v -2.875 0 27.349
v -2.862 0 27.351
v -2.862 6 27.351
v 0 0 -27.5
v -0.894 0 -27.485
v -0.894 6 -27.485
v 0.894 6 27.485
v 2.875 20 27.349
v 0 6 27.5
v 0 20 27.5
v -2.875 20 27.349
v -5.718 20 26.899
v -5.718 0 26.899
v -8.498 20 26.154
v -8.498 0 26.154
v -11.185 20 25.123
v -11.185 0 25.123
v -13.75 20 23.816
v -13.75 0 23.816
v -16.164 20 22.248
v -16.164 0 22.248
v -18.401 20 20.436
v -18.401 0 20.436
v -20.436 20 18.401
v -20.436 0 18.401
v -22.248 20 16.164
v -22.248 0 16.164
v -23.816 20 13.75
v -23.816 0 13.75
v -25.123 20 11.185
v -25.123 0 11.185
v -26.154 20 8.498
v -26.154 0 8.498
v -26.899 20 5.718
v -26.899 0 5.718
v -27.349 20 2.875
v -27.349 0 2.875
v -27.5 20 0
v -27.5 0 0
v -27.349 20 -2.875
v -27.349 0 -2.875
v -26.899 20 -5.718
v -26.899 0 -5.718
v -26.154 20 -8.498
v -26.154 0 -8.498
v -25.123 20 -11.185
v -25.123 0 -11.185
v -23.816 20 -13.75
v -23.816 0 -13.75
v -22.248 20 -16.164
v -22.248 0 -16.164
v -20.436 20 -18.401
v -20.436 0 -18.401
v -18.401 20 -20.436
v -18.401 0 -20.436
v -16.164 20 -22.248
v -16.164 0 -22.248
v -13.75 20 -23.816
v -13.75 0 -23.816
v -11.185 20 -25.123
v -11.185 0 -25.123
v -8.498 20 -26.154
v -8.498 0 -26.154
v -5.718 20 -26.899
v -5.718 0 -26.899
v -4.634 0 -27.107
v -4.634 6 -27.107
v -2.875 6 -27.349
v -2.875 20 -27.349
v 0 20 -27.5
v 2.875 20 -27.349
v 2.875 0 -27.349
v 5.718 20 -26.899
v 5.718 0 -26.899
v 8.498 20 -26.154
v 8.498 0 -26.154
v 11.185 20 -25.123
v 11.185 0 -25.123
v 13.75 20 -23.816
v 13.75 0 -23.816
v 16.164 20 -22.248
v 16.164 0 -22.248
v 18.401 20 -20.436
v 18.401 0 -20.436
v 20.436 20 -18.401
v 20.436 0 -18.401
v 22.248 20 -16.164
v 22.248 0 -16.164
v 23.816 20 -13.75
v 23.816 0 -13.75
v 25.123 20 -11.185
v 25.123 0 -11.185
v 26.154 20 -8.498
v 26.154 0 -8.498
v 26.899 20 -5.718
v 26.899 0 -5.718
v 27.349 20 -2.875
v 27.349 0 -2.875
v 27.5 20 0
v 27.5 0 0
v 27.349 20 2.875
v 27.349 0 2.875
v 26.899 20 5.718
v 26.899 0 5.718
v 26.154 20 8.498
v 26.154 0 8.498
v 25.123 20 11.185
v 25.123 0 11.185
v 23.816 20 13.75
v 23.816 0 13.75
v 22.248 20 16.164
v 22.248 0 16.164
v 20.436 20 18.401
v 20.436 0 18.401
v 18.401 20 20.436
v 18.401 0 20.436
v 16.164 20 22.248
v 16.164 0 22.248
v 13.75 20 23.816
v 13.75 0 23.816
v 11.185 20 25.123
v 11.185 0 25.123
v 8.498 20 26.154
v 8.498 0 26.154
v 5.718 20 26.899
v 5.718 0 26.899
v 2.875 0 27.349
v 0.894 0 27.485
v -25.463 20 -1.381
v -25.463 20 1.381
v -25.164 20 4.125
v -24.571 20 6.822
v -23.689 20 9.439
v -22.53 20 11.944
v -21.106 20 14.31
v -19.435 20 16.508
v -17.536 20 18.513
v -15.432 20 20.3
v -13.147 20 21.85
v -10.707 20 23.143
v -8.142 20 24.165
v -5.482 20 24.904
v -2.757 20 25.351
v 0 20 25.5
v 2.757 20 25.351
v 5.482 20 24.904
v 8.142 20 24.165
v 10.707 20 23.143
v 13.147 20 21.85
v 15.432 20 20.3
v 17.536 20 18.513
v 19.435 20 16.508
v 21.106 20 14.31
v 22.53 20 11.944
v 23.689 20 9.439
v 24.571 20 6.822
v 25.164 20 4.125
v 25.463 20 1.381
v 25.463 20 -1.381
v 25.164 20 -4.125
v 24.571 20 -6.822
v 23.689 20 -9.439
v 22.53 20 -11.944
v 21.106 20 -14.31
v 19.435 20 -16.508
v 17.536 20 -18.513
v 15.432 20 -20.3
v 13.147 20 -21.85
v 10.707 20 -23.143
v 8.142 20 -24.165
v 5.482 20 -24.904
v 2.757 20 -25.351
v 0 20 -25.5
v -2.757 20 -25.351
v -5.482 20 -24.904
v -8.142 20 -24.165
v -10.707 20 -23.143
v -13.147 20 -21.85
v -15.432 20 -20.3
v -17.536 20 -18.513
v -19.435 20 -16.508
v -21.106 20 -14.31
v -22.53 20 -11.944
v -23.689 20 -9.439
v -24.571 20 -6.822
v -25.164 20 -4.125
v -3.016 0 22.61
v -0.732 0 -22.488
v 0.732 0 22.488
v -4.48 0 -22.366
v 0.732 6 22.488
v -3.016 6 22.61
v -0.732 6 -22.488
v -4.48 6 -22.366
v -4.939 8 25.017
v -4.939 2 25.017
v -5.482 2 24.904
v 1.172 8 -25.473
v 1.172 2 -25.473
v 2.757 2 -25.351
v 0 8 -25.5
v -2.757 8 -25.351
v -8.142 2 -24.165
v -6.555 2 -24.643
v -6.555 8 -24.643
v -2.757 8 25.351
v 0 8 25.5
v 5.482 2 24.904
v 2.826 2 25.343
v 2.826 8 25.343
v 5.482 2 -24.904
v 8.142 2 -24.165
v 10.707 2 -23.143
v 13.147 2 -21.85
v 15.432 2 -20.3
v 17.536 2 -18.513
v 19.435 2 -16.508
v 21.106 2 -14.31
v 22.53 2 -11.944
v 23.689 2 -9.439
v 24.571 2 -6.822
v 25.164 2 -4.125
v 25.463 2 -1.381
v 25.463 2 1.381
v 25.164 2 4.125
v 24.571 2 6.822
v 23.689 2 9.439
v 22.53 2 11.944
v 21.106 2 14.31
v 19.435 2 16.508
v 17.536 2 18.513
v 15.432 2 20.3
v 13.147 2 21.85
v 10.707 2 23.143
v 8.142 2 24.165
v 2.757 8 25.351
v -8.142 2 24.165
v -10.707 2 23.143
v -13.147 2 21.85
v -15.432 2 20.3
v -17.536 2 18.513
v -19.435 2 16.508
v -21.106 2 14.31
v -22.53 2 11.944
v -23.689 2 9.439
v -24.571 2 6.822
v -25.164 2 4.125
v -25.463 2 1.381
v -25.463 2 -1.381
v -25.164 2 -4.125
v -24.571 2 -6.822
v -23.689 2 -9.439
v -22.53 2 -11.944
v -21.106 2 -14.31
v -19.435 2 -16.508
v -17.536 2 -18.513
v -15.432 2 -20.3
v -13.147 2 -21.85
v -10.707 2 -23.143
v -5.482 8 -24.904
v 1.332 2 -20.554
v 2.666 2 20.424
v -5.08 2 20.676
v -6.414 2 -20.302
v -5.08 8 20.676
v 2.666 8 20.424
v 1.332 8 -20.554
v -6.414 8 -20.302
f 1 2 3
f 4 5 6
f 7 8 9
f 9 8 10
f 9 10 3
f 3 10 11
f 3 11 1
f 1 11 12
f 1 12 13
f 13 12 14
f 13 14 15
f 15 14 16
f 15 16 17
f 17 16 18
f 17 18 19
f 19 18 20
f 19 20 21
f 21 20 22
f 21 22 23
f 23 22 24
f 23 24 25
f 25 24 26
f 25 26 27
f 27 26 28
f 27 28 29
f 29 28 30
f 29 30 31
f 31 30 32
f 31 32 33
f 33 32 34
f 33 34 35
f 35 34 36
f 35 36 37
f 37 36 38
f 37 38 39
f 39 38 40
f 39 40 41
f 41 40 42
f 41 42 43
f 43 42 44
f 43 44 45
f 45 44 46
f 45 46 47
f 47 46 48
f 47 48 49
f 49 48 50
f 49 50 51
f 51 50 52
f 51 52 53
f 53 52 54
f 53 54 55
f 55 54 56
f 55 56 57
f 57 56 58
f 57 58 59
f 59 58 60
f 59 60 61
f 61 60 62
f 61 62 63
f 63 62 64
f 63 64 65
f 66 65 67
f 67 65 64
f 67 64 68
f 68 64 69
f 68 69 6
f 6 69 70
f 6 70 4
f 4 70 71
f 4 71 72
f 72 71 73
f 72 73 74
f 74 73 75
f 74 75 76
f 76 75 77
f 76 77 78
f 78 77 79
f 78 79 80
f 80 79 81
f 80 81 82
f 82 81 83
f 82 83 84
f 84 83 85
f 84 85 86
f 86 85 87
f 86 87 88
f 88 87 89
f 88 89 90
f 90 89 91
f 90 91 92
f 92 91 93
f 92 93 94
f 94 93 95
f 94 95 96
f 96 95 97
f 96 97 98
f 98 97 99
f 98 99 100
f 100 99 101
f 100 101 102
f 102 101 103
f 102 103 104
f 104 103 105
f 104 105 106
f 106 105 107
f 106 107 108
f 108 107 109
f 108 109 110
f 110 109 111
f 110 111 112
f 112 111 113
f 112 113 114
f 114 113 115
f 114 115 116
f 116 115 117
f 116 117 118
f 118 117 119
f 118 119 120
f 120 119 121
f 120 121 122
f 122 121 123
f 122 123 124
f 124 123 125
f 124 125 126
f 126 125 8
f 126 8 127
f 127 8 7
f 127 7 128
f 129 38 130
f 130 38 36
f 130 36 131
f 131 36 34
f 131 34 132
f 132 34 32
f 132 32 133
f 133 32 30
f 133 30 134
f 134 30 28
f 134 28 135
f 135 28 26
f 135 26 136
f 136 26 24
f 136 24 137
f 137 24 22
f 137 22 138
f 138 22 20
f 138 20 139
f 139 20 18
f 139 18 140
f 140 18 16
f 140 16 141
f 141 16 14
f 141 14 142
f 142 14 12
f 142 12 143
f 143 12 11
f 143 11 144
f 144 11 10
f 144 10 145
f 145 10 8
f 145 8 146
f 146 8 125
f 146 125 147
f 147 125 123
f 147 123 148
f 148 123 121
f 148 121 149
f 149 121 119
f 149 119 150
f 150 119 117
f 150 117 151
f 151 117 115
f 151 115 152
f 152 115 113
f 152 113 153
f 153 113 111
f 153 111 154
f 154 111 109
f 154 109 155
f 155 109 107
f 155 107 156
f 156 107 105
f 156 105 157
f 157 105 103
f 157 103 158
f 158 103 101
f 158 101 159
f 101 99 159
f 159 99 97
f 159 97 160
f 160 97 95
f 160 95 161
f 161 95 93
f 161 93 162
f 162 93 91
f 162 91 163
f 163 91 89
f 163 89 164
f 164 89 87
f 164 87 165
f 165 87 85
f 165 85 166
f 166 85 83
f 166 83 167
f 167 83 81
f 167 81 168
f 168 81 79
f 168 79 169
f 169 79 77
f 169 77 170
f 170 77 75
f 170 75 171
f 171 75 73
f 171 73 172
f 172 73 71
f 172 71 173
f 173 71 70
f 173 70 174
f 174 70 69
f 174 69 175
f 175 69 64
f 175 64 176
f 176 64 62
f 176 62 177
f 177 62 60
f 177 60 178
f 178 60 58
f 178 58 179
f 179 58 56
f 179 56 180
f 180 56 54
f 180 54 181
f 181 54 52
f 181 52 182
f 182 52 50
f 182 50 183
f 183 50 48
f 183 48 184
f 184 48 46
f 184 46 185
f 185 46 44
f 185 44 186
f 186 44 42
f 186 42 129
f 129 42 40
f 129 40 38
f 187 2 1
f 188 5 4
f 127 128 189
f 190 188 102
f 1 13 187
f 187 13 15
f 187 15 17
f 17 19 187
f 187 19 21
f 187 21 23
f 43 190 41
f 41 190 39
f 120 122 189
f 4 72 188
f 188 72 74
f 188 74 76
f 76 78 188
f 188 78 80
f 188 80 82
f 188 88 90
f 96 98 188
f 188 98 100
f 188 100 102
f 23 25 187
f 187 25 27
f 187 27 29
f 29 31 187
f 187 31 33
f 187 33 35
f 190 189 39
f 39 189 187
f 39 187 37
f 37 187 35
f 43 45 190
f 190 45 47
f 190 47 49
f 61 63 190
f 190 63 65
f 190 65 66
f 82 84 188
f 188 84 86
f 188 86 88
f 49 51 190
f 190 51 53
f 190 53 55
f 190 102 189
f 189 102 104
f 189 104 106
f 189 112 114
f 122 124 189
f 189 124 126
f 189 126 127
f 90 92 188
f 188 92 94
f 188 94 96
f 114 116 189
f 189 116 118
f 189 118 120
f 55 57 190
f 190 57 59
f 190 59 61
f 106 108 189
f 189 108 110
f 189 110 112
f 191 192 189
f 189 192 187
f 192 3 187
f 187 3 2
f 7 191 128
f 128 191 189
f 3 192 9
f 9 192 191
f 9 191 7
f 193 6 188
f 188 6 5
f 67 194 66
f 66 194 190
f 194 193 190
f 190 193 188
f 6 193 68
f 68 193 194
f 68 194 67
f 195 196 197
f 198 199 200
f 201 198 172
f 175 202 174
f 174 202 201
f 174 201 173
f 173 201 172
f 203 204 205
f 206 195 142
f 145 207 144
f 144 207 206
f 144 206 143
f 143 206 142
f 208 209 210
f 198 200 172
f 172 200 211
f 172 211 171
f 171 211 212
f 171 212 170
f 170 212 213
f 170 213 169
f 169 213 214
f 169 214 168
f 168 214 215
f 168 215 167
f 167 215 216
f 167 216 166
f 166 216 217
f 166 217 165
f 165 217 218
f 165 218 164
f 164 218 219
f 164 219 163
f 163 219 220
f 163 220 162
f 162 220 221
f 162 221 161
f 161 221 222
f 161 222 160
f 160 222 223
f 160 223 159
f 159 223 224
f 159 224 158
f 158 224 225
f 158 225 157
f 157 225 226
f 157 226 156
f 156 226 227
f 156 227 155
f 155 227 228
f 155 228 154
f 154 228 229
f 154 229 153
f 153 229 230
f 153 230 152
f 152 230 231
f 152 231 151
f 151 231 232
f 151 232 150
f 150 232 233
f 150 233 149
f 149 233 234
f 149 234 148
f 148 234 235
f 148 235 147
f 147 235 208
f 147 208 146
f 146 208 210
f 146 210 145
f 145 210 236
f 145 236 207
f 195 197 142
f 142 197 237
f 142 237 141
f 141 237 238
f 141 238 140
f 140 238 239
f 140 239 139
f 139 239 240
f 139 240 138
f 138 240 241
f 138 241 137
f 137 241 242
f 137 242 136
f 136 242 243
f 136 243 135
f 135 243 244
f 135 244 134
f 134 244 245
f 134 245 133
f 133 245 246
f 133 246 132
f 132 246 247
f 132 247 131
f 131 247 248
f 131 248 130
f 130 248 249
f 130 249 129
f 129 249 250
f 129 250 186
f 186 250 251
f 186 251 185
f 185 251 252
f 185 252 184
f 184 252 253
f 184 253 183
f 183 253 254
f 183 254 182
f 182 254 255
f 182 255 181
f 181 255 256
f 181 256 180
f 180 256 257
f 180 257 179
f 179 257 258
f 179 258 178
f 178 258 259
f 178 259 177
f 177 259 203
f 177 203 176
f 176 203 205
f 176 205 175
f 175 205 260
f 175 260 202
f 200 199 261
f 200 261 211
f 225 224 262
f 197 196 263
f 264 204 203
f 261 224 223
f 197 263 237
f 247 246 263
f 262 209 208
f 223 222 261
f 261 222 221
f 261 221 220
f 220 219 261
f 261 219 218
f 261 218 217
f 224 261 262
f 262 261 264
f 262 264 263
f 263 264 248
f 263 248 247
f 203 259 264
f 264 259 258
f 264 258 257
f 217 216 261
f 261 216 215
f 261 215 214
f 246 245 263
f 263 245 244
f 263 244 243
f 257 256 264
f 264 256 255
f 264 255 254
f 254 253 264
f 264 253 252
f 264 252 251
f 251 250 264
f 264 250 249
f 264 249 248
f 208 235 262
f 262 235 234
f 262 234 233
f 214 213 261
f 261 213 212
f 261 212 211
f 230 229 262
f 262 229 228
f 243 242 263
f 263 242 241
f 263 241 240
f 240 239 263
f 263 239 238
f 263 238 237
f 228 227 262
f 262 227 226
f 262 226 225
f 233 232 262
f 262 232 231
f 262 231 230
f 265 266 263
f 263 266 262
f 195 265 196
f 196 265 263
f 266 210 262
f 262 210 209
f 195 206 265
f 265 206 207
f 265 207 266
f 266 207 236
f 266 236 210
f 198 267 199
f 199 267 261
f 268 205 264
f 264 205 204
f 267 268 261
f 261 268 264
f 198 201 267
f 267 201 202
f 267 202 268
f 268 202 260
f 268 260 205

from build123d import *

# Parameters (mm, degrees)
CROQUIS1_R              = 27.5
SALIENTE_EXTRUIR1_DEPTH = 20
CORTAR_EXTRUIR1_DEPTH   = 6
VACIADO3_START          = 2
VACIADO3_DEPTH          = 18
VACIADO3_START_2        = 8
VACIADO3_2_DEPTH        = 12


# Read off the part's stored shape, not the designer's step: Vaciado3
with BuildPart() as part:
    # Croquis1 → Saliente-Extruir1 (new body)
    with BuildSketch(Plane(origin=(0, 0, 0), x_dir=(1, 0, 0), z_dir=(0, 1, 0))):
        with Locations(Location((0, 0, 0), (0, 0, 270))):
            Circle(CROQUIS1_R)
    extrude(amount=SALIENTE_EXTRUIR1_DEPTH)

    # Croquis2 → Cortar-Extruir1 (cut)
    with BuildSketch(Plane(origin=(0, 0, 0), x_dir=(-1, 0, 0), z_dir=(0, -1, 0))):
        with BuildLine():
            Line((3.016301233, -22.610051457), (2.862051808, -27.350661042))
            ThreePointArc((2.862051808, -27.350661042), (0.986172274, -27.482311843), (-0.894318642, -27.485454229))
            Line((-0.894318642, -27.485454229), (-0.731715252, -22.488098915))
            Line((-0.731715252, -22.488098915), (3.016301233, -22.610051457))
        make_face()
        with BuildLine():
            Line((0.731715252, 22.488098915), (4.479731738, 22.366146372))
            Line((4.479731738, 22.366146372), (4.633981164, 27.106755958))
            ThreePointArc((4.633981164, 27.106755958), (2.770627687, 27.360073505), (0.894318642, 27.485454229))
            Line((0.894318642, 27.485454229), (0.731715252, 22.488098915))
        make_face()
    extrude(amount=-CORTAR_EXTRUIR1_DEPTH, mode=Mode.SUBTRACT)

    # Vaciado3 outline → Vaciado3 (cut)
    with BuildSketch(Plane(origin=(0, 0, 0), x_dir=(1, 0, 0), z_dir=(0, 1, 0)).offset(VACIADO3_START)):
        with BuildLine():
            ThreePointArc((2.825664836, -25.342959934), (25.486512103, 0.829277286), (1.172219416, 25.473042646))
            Line((1.172219416, 25.473042646), (1.332268229, 20.554198145))
            Line((1.332268229, 20.554198145), (-6.413632508, 20.302162891))
            Line((-6.413632508, 20.302162891), (-6.554878223, 24.643124223))
            ThreePointArc((-6.554878223, 24.643124223), (-25.486512103, -0.829277286), (-4.939039, -25.017112019))
            Line((-4.939039, -25.017112019), (-5.080284715, -20.676150687))
            Line((-5.080284715, -20.676150687), (2.665616022, -20.424115433))
            Line((2.665616022, -20.424115433), (2.825664836, -25.342959934))
        make_face()
    extrude(amount=VACIADO3_DEPTH, mode=Mode.SUBTRACT)

    # Vaciado3 2 outline → Vaciado3 2 (cut)
    with BuildSketch(Plane(origin=(0, 0, 0), x_dir=(1, 0, 0), z_dir=(0, 1, 0)).offset(VACIADO3_START_2)):
        with BuildLine():
            Line((1.332268229, 20.554198145), (1.172219416, 25.473042646))
            ThreePointArc((1.172219416, 25.473042646), (-2.723131489, 25.354182197), (-6.554878223, 24.643124223))
            Line((-6.554878223, 24.643124223), (-6.413632508, 20.302162891))
            Line((-6.413632508, 20.302162891), (1.332268229, 20.554198145))
        make_face()
        with BuildLine():
            ThreePointArc((-4.939039, -25.017112019), (-1.069173421, -25.477575791), (2.825664836, -25.342959934))
            Line((2.825664836, -25.342959934), (2.665616022, -20.424115433))
            Line((2.665616022, -20.424115433), (-5.080284715, -20.676150687))
            Line((-5.080284715, -20.676150687), (-4.939039, -25.017112019))
        make_face()
    extrude(amount=VACIADO3_2_DEPTH, mode=Mode.SUBTRACT)


solid = part.part
